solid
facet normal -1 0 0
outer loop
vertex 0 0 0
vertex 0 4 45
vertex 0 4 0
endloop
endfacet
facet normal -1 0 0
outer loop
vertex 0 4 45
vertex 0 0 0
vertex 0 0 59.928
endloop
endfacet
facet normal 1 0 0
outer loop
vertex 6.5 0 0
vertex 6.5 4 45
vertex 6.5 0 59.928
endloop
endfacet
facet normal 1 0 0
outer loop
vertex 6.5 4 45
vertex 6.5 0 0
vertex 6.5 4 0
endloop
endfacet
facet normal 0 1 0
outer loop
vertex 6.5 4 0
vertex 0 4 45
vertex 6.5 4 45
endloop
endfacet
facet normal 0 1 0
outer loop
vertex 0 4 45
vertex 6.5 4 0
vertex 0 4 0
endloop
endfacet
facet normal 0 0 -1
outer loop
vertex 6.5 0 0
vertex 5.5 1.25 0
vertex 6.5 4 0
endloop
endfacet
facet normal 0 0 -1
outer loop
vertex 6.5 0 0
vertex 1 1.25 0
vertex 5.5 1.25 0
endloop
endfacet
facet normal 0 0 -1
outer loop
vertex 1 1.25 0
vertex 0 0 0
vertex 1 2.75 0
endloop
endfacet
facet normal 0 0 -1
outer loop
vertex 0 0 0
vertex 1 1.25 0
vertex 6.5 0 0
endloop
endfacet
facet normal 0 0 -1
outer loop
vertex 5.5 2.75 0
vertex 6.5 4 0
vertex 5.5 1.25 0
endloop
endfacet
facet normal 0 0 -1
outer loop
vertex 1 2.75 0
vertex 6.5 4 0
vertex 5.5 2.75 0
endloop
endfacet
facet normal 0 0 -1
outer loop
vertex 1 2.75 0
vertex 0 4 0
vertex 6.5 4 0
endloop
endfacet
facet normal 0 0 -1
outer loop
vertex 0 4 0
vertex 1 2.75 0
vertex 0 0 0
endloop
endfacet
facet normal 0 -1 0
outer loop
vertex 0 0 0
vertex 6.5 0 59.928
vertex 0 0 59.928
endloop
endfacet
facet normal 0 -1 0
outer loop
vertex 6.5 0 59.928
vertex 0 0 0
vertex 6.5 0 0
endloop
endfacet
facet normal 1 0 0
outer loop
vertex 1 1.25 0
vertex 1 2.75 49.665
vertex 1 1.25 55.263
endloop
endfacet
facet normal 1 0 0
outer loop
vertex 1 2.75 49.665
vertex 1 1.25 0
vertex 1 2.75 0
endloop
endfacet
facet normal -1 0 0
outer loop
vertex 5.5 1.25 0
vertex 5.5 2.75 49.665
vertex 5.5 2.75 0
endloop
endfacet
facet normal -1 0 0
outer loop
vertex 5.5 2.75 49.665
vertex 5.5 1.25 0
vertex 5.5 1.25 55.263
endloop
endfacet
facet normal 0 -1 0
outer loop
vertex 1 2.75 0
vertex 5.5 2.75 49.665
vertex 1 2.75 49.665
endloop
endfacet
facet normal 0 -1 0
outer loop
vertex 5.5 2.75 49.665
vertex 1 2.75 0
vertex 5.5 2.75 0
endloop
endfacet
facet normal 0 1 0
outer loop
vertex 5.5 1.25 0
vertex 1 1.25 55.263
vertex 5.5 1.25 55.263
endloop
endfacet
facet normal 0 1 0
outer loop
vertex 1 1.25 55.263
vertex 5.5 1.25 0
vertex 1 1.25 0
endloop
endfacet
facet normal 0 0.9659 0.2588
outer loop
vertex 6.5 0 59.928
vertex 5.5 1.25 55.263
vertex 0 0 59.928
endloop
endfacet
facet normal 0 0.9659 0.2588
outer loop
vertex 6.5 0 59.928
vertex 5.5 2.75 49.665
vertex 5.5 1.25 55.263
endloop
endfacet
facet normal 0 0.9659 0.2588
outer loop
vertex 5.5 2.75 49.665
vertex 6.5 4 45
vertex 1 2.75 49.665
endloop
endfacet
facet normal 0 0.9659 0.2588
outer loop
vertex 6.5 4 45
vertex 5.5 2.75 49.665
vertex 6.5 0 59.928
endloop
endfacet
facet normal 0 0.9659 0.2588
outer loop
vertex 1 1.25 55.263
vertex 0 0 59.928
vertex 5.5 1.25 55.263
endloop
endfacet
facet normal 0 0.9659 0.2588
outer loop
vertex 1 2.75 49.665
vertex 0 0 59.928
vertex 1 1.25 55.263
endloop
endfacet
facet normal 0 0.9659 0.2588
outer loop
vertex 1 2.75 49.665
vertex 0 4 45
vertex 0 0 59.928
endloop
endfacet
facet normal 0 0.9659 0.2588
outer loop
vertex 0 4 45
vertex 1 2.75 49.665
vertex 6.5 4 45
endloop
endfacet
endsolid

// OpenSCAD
height = 60;
inner_width = 4.5;
inner_height = 1.5;
outer_width = 6.5;
outer_height = 4;
start_cut_at = 45;

difference()
{
    cube([outer_width, outer_height, height]); 
    translate([(outer_width - inner_width) / 2, (outer_height - inner_height) / 2, 0])
    {
        cube([inner_width, inner_height, height]);
    }
    
    // Cut
    translate([0, outer_height, start_cut_at])
    {
        rotate(a = [15, 0, 0])
        {
            cube([outer_width, outer_height, height]);
        }
    }
}
